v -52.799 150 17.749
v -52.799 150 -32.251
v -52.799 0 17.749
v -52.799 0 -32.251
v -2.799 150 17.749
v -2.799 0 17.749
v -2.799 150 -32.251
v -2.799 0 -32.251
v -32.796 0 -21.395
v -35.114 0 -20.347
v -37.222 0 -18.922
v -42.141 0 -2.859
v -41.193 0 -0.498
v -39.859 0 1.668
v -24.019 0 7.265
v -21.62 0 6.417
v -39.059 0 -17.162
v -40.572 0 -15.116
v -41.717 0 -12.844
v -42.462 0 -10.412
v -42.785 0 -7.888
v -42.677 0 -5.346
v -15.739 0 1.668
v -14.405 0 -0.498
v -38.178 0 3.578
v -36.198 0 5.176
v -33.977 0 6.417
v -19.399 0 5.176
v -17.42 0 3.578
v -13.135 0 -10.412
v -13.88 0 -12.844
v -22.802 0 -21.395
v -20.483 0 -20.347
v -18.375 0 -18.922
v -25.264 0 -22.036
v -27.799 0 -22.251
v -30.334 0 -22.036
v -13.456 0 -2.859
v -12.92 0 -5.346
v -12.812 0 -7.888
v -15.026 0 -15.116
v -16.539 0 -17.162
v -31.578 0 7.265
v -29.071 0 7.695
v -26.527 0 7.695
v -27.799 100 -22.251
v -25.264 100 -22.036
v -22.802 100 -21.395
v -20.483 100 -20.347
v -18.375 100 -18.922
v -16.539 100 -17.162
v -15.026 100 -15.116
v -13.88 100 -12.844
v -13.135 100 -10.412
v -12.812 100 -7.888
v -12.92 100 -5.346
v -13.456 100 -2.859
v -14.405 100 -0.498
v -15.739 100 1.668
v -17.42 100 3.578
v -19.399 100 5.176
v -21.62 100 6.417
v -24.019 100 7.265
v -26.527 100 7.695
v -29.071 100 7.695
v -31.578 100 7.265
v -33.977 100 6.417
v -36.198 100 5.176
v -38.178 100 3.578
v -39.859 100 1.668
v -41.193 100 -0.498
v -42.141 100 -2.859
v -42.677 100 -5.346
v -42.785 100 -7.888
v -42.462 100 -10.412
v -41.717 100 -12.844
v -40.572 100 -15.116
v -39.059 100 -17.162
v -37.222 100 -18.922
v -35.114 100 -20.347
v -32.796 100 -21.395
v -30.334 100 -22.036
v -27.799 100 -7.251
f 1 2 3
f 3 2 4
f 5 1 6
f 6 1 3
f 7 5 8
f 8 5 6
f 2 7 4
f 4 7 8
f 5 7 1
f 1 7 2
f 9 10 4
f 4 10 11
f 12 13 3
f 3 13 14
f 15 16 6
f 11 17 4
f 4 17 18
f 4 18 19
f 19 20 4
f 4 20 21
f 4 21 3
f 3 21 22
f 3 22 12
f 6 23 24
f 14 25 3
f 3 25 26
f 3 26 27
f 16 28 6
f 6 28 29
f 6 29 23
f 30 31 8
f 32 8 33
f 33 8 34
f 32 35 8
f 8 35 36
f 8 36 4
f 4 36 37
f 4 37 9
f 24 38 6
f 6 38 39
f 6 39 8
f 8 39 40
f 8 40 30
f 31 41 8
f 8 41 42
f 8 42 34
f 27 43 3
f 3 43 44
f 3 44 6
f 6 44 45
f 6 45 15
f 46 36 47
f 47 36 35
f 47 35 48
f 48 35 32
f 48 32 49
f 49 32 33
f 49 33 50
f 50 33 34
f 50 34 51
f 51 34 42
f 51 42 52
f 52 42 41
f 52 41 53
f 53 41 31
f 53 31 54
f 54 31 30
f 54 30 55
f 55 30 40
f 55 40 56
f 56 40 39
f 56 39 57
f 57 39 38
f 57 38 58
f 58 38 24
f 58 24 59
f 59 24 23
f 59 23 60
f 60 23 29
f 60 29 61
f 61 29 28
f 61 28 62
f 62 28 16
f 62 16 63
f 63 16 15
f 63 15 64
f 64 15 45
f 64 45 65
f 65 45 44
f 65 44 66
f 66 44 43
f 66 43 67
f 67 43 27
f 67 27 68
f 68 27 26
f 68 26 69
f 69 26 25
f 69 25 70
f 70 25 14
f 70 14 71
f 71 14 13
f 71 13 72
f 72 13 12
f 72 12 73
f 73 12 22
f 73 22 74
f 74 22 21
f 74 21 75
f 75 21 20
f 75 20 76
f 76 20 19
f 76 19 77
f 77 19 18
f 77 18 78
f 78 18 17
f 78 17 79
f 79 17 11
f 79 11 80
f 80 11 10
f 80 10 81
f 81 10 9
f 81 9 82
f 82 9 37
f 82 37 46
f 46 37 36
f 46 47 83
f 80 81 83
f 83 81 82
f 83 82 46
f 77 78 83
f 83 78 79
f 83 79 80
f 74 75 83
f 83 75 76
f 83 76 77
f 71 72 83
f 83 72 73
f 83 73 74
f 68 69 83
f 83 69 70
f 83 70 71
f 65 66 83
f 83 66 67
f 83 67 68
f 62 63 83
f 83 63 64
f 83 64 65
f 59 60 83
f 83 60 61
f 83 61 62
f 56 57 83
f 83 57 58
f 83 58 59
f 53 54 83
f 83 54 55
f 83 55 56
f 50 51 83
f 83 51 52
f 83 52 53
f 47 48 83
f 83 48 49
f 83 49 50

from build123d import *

# Parameters (mm, degrees)
SKETCH1_W           = 50
SKETCH1_H           = 50
BOSS_EXTRUDE1_DEPTH = 150
SKETCH2_R           = 15
CUT_EXTRUDE1_DEPTH  = 100


with BuildPart() as part:
    # Sketch1 → Boss-Extrude1 (new body)
    with BuildSketch(Plane(origin=(0, 0, 0), x_dir=(1, 0, 0), z_dir=(0, 1, 0))):
        with Locations((-27.798692914, 7.251418332)):
            Rectangle(SKETCH1_W, SKETCH1_H)
    extrude(amount=BOSS_EXTRUDE1_DEPTH)

    # Sketch2 → Cut-Extrude1 (cut)
    with BuildSketch(Plane.XZ):
        with Locations((-27.798692914, -7.251418332)):
            Circle(SKETCH2_R)
    extrude(amount=-CUT_EXTRUDE1_DEPTH, mode=Mode.SUBTRACT)


solid = part.part
